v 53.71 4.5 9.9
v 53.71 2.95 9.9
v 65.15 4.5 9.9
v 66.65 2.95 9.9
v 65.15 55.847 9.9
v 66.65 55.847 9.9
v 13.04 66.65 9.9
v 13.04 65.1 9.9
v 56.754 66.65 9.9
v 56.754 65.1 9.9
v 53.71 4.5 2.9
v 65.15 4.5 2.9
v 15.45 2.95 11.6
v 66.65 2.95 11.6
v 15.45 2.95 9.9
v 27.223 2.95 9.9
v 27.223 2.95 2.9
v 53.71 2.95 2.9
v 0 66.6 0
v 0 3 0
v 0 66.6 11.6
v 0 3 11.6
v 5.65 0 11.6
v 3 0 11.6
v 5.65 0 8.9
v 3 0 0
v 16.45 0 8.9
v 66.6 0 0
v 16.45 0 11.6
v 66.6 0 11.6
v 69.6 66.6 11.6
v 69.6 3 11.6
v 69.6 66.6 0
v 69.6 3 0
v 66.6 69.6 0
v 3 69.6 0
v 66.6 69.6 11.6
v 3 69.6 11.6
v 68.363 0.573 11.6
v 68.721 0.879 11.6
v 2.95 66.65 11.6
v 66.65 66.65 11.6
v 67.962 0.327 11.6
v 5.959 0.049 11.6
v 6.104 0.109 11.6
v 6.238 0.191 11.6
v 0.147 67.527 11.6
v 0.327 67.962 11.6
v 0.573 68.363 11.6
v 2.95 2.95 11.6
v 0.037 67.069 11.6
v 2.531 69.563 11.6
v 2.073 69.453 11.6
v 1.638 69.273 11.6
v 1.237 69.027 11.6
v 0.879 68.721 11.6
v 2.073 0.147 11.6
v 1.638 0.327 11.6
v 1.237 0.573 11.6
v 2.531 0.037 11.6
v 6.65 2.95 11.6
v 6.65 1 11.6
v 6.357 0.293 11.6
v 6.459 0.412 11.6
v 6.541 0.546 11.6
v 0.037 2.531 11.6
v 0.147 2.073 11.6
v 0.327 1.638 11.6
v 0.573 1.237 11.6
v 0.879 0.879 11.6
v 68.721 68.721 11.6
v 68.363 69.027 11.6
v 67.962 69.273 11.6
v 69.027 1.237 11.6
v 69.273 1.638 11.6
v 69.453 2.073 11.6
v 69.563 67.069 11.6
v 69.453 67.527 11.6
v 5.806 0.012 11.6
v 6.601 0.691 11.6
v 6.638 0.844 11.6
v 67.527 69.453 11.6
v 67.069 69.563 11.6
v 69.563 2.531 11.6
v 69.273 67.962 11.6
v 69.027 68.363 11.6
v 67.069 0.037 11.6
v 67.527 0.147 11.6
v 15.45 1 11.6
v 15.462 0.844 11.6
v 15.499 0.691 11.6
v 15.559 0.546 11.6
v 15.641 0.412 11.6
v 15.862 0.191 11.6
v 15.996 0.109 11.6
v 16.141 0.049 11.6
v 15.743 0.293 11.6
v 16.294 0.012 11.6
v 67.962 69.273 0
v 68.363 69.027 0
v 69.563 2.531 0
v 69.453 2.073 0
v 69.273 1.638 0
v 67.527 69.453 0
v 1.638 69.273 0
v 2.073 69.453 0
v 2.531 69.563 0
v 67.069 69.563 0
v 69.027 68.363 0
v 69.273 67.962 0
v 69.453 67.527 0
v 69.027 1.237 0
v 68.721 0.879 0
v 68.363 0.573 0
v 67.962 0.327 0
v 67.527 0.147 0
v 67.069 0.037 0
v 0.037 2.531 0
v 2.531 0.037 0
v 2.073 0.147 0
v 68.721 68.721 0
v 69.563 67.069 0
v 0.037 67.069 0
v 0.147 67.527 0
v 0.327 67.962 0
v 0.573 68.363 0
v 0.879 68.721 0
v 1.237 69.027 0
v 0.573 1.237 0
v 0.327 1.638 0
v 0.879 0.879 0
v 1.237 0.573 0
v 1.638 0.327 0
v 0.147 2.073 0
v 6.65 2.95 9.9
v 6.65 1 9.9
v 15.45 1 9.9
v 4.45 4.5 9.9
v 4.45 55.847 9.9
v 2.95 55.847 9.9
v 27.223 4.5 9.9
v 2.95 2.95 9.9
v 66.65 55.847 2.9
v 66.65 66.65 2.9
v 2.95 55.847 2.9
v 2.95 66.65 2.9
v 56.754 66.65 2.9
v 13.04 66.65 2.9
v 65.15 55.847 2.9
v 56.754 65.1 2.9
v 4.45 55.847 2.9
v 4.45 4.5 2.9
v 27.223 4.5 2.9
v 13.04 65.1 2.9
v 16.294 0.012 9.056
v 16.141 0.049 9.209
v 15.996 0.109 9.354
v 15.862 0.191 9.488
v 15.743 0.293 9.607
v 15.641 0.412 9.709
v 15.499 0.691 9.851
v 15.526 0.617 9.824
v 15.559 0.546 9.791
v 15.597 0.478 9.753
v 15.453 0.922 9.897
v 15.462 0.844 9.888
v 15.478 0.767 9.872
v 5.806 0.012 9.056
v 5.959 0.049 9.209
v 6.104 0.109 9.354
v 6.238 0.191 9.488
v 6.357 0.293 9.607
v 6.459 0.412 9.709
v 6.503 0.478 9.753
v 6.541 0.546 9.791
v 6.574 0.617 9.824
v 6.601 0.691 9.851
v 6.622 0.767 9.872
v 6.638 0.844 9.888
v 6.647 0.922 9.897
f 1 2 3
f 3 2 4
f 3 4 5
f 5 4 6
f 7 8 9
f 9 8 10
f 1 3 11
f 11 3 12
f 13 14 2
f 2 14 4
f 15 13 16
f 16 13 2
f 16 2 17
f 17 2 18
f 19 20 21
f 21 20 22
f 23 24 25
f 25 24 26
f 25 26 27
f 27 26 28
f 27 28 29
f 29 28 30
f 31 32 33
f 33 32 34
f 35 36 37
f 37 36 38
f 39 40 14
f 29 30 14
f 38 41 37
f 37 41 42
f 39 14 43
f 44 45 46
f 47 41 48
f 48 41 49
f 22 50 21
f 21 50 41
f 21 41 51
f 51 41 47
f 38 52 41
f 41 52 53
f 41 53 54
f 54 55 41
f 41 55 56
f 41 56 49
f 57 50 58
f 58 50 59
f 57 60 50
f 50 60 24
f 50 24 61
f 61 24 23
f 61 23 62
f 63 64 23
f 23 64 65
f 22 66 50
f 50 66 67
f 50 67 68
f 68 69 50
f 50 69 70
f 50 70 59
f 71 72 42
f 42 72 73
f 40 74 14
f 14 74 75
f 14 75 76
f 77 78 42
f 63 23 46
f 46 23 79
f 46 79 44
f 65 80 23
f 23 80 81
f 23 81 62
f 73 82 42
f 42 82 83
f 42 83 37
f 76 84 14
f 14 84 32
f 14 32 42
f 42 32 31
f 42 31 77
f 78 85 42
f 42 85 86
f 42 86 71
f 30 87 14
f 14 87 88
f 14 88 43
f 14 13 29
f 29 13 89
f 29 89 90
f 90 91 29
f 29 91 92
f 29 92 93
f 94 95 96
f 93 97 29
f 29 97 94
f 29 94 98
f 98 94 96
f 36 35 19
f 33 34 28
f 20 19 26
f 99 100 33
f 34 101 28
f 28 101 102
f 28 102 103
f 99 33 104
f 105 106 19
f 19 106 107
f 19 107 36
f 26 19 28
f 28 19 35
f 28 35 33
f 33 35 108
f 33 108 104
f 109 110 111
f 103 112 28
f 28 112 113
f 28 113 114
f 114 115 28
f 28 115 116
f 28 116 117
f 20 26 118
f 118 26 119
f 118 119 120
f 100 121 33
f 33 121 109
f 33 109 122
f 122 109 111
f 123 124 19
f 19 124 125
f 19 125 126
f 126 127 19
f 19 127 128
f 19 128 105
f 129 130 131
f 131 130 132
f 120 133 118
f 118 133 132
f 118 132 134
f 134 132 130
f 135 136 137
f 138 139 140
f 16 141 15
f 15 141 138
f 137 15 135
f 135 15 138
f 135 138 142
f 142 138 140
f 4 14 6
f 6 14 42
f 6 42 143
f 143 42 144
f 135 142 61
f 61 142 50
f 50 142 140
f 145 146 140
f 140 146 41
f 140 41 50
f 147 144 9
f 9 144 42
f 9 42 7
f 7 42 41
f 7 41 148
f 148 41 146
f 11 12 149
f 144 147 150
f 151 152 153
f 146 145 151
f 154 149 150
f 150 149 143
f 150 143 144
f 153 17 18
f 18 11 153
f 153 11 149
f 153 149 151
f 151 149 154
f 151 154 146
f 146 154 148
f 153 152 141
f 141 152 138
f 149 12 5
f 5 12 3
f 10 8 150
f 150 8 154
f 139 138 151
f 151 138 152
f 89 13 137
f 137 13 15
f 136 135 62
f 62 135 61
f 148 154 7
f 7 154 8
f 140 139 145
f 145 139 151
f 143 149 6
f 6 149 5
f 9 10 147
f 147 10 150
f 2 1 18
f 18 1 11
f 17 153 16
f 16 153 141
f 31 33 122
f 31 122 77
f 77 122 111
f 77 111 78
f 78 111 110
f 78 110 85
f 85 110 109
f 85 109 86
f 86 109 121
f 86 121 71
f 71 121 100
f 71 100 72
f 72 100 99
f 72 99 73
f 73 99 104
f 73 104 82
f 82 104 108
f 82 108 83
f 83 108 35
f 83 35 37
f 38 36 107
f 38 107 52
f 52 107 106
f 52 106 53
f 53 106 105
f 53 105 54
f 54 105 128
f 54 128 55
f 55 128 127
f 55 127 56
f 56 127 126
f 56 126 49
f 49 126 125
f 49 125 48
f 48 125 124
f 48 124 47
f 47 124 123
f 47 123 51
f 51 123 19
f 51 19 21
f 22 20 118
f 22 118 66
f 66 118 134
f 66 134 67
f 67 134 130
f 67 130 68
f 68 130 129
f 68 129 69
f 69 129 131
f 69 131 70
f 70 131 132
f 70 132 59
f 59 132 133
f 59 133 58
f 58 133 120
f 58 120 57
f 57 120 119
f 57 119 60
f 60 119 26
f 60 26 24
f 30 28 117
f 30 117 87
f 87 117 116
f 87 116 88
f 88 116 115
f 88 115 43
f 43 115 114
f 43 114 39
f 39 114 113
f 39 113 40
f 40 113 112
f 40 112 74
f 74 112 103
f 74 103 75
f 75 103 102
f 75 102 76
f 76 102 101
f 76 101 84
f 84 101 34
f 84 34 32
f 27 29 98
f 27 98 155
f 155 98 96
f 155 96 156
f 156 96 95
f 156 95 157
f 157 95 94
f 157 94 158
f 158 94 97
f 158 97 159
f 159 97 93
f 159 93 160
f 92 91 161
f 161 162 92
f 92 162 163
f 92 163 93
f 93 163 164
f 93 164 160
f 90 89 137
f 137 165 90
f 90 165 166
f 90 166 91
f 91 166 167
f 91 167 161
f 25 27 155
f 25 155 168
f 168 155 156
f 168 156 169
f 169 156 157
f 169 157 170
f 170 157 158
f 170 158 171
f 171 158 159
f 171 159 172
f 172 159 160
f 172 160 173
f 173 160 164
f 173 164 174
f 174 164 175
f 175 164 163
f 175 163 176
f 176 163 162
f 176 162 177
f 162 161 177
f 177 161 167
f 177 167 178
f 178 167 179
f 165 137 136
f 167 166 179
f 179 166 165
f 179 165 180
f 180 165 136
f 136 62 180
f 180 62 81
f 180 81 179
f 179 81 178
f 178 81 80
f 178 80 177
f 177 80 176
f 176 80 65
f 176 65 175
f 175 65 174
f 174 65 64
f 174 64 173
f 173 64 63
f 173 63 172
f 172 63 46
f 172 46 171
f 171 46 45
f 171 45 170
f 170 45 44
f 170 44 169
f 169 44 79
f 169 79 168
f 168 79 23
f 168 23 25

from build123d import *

# Parameters (mm, degrees)
SKETCH1_W           = 69.6
SKETCH1_H           = 69.6
BOSS_EXTRUDE1_DEPTH = 11.6
SKETCH2_W           = 60.7
SKETCH2_H           = 60.6
CUT_EXTRUDE3_DEPTH  = 8.7
SKETCH4_W           = 63.7
SKETCH4_H           = 63.7
CUT_EXTRUDE4_DEPTH  = 1.7
SKETCH5_W           = 8.8
SKETCH5_H           = 2.95
CUT_EXTRUDE5_DEPTH  = 1.7
SKETCH6_W           = 10.090148406
SKETCH6_H           = 10.8025245
SKETCH6_W_2         = 26.487438399
SKETCH6_H_2         = 3.614002098
SKETCH6_W_3         = 9.895864017
CUT_EXTRUDE6_DEPTH  = 7
FILLET1_R           = 3
FILLET2_R           = 1


with BuildPart() as part:
    # Sketch1 → Boss-Extrude1 (new body)
    with BuildSketch(Plane.XY):
        with Locations((34.8, 34.8)):
            Rectangle(SKETCH1_W, SKETCH1_H)
    extrude(amount=BOSS_EXTRUDE1_DEPTH)

    # Sketch2 → Cut-Extrude3 (cut)
    with BuildSketch(Plane.XY.offset(11.6)):
        with Locations((34.8, 34.8)):
            Rectangle(SKETCH2_W, SKETCH2_H)
    extrude(amount=-CUT_EXTRUDE3_DEPTH, mode=Mode.SUBTRACT)

    # Sketch4 → Cut-Extrude4 (cut)
    with BuildSketch(Plane.XY.offset(11.6)):
        with Locations((34.8, 34.8)):
            Rectangle(SKETCH4_W, SKETCH4_H)
    extrude(amount=-CUT_EXTRUDE4_DEPTH, mode=Mode.SUBTRACT)

    # Sketch5 → Cut-Extrude5 (cut)
    with BuildSketch(Plane.XY.offset(11.6)):
        with Locations((11.05, 1.475)):
            Rectangle(SKETCH5_W, SKETCH5_H)
    extrude(amount=-CUT_EXTRUDE5_DEPTH, mode=Mode.SUBTRACT)

    # Sketch6 → Cut-Extrude6 (cut)
    with BuildSketch(Plane.XY.offset(9.9)):
        with Locations((7.995074203, 61.24873775)):
            Rectangle(SKETCH6_W, SKETCH6_H)
        with Locations((40.46662802, 4.757001049)):
            Rectangle(SKETCH6_W_2, SKETCH6_H_2)
        with Locations((61.702067992, 61.24873775)):
            Rectangle(SKETCH6_W_3, SKETCH6_H)
    extrude(amount=-CUT_EXTRUDE6_DEPTH, mode=Mode.SUBTRACT)

    # Fillet1
    fillet1_edges = [part.edges().sort_by_distance(p)[0] for p in [
        (0, 69.6, 5.8),
        (69.6, 69.6, 5.8),
        (69.6, 0, 5.8),
        (0, 0, 5.8),
    ]]
    fillet(fillet1_edges, radius=FILLET1_R)

    # Fillet2
    fillet2_edges = [part.edges().sort_by_distance(p)[0] for p in [
        (11.05, 0, 9.9),
        (15.45, 0, 10.75),
        (6.65, 0, 10.75),
    ]]
    fillet(fillet2_edges, radius=FILLET2_R)


solid = part.part
